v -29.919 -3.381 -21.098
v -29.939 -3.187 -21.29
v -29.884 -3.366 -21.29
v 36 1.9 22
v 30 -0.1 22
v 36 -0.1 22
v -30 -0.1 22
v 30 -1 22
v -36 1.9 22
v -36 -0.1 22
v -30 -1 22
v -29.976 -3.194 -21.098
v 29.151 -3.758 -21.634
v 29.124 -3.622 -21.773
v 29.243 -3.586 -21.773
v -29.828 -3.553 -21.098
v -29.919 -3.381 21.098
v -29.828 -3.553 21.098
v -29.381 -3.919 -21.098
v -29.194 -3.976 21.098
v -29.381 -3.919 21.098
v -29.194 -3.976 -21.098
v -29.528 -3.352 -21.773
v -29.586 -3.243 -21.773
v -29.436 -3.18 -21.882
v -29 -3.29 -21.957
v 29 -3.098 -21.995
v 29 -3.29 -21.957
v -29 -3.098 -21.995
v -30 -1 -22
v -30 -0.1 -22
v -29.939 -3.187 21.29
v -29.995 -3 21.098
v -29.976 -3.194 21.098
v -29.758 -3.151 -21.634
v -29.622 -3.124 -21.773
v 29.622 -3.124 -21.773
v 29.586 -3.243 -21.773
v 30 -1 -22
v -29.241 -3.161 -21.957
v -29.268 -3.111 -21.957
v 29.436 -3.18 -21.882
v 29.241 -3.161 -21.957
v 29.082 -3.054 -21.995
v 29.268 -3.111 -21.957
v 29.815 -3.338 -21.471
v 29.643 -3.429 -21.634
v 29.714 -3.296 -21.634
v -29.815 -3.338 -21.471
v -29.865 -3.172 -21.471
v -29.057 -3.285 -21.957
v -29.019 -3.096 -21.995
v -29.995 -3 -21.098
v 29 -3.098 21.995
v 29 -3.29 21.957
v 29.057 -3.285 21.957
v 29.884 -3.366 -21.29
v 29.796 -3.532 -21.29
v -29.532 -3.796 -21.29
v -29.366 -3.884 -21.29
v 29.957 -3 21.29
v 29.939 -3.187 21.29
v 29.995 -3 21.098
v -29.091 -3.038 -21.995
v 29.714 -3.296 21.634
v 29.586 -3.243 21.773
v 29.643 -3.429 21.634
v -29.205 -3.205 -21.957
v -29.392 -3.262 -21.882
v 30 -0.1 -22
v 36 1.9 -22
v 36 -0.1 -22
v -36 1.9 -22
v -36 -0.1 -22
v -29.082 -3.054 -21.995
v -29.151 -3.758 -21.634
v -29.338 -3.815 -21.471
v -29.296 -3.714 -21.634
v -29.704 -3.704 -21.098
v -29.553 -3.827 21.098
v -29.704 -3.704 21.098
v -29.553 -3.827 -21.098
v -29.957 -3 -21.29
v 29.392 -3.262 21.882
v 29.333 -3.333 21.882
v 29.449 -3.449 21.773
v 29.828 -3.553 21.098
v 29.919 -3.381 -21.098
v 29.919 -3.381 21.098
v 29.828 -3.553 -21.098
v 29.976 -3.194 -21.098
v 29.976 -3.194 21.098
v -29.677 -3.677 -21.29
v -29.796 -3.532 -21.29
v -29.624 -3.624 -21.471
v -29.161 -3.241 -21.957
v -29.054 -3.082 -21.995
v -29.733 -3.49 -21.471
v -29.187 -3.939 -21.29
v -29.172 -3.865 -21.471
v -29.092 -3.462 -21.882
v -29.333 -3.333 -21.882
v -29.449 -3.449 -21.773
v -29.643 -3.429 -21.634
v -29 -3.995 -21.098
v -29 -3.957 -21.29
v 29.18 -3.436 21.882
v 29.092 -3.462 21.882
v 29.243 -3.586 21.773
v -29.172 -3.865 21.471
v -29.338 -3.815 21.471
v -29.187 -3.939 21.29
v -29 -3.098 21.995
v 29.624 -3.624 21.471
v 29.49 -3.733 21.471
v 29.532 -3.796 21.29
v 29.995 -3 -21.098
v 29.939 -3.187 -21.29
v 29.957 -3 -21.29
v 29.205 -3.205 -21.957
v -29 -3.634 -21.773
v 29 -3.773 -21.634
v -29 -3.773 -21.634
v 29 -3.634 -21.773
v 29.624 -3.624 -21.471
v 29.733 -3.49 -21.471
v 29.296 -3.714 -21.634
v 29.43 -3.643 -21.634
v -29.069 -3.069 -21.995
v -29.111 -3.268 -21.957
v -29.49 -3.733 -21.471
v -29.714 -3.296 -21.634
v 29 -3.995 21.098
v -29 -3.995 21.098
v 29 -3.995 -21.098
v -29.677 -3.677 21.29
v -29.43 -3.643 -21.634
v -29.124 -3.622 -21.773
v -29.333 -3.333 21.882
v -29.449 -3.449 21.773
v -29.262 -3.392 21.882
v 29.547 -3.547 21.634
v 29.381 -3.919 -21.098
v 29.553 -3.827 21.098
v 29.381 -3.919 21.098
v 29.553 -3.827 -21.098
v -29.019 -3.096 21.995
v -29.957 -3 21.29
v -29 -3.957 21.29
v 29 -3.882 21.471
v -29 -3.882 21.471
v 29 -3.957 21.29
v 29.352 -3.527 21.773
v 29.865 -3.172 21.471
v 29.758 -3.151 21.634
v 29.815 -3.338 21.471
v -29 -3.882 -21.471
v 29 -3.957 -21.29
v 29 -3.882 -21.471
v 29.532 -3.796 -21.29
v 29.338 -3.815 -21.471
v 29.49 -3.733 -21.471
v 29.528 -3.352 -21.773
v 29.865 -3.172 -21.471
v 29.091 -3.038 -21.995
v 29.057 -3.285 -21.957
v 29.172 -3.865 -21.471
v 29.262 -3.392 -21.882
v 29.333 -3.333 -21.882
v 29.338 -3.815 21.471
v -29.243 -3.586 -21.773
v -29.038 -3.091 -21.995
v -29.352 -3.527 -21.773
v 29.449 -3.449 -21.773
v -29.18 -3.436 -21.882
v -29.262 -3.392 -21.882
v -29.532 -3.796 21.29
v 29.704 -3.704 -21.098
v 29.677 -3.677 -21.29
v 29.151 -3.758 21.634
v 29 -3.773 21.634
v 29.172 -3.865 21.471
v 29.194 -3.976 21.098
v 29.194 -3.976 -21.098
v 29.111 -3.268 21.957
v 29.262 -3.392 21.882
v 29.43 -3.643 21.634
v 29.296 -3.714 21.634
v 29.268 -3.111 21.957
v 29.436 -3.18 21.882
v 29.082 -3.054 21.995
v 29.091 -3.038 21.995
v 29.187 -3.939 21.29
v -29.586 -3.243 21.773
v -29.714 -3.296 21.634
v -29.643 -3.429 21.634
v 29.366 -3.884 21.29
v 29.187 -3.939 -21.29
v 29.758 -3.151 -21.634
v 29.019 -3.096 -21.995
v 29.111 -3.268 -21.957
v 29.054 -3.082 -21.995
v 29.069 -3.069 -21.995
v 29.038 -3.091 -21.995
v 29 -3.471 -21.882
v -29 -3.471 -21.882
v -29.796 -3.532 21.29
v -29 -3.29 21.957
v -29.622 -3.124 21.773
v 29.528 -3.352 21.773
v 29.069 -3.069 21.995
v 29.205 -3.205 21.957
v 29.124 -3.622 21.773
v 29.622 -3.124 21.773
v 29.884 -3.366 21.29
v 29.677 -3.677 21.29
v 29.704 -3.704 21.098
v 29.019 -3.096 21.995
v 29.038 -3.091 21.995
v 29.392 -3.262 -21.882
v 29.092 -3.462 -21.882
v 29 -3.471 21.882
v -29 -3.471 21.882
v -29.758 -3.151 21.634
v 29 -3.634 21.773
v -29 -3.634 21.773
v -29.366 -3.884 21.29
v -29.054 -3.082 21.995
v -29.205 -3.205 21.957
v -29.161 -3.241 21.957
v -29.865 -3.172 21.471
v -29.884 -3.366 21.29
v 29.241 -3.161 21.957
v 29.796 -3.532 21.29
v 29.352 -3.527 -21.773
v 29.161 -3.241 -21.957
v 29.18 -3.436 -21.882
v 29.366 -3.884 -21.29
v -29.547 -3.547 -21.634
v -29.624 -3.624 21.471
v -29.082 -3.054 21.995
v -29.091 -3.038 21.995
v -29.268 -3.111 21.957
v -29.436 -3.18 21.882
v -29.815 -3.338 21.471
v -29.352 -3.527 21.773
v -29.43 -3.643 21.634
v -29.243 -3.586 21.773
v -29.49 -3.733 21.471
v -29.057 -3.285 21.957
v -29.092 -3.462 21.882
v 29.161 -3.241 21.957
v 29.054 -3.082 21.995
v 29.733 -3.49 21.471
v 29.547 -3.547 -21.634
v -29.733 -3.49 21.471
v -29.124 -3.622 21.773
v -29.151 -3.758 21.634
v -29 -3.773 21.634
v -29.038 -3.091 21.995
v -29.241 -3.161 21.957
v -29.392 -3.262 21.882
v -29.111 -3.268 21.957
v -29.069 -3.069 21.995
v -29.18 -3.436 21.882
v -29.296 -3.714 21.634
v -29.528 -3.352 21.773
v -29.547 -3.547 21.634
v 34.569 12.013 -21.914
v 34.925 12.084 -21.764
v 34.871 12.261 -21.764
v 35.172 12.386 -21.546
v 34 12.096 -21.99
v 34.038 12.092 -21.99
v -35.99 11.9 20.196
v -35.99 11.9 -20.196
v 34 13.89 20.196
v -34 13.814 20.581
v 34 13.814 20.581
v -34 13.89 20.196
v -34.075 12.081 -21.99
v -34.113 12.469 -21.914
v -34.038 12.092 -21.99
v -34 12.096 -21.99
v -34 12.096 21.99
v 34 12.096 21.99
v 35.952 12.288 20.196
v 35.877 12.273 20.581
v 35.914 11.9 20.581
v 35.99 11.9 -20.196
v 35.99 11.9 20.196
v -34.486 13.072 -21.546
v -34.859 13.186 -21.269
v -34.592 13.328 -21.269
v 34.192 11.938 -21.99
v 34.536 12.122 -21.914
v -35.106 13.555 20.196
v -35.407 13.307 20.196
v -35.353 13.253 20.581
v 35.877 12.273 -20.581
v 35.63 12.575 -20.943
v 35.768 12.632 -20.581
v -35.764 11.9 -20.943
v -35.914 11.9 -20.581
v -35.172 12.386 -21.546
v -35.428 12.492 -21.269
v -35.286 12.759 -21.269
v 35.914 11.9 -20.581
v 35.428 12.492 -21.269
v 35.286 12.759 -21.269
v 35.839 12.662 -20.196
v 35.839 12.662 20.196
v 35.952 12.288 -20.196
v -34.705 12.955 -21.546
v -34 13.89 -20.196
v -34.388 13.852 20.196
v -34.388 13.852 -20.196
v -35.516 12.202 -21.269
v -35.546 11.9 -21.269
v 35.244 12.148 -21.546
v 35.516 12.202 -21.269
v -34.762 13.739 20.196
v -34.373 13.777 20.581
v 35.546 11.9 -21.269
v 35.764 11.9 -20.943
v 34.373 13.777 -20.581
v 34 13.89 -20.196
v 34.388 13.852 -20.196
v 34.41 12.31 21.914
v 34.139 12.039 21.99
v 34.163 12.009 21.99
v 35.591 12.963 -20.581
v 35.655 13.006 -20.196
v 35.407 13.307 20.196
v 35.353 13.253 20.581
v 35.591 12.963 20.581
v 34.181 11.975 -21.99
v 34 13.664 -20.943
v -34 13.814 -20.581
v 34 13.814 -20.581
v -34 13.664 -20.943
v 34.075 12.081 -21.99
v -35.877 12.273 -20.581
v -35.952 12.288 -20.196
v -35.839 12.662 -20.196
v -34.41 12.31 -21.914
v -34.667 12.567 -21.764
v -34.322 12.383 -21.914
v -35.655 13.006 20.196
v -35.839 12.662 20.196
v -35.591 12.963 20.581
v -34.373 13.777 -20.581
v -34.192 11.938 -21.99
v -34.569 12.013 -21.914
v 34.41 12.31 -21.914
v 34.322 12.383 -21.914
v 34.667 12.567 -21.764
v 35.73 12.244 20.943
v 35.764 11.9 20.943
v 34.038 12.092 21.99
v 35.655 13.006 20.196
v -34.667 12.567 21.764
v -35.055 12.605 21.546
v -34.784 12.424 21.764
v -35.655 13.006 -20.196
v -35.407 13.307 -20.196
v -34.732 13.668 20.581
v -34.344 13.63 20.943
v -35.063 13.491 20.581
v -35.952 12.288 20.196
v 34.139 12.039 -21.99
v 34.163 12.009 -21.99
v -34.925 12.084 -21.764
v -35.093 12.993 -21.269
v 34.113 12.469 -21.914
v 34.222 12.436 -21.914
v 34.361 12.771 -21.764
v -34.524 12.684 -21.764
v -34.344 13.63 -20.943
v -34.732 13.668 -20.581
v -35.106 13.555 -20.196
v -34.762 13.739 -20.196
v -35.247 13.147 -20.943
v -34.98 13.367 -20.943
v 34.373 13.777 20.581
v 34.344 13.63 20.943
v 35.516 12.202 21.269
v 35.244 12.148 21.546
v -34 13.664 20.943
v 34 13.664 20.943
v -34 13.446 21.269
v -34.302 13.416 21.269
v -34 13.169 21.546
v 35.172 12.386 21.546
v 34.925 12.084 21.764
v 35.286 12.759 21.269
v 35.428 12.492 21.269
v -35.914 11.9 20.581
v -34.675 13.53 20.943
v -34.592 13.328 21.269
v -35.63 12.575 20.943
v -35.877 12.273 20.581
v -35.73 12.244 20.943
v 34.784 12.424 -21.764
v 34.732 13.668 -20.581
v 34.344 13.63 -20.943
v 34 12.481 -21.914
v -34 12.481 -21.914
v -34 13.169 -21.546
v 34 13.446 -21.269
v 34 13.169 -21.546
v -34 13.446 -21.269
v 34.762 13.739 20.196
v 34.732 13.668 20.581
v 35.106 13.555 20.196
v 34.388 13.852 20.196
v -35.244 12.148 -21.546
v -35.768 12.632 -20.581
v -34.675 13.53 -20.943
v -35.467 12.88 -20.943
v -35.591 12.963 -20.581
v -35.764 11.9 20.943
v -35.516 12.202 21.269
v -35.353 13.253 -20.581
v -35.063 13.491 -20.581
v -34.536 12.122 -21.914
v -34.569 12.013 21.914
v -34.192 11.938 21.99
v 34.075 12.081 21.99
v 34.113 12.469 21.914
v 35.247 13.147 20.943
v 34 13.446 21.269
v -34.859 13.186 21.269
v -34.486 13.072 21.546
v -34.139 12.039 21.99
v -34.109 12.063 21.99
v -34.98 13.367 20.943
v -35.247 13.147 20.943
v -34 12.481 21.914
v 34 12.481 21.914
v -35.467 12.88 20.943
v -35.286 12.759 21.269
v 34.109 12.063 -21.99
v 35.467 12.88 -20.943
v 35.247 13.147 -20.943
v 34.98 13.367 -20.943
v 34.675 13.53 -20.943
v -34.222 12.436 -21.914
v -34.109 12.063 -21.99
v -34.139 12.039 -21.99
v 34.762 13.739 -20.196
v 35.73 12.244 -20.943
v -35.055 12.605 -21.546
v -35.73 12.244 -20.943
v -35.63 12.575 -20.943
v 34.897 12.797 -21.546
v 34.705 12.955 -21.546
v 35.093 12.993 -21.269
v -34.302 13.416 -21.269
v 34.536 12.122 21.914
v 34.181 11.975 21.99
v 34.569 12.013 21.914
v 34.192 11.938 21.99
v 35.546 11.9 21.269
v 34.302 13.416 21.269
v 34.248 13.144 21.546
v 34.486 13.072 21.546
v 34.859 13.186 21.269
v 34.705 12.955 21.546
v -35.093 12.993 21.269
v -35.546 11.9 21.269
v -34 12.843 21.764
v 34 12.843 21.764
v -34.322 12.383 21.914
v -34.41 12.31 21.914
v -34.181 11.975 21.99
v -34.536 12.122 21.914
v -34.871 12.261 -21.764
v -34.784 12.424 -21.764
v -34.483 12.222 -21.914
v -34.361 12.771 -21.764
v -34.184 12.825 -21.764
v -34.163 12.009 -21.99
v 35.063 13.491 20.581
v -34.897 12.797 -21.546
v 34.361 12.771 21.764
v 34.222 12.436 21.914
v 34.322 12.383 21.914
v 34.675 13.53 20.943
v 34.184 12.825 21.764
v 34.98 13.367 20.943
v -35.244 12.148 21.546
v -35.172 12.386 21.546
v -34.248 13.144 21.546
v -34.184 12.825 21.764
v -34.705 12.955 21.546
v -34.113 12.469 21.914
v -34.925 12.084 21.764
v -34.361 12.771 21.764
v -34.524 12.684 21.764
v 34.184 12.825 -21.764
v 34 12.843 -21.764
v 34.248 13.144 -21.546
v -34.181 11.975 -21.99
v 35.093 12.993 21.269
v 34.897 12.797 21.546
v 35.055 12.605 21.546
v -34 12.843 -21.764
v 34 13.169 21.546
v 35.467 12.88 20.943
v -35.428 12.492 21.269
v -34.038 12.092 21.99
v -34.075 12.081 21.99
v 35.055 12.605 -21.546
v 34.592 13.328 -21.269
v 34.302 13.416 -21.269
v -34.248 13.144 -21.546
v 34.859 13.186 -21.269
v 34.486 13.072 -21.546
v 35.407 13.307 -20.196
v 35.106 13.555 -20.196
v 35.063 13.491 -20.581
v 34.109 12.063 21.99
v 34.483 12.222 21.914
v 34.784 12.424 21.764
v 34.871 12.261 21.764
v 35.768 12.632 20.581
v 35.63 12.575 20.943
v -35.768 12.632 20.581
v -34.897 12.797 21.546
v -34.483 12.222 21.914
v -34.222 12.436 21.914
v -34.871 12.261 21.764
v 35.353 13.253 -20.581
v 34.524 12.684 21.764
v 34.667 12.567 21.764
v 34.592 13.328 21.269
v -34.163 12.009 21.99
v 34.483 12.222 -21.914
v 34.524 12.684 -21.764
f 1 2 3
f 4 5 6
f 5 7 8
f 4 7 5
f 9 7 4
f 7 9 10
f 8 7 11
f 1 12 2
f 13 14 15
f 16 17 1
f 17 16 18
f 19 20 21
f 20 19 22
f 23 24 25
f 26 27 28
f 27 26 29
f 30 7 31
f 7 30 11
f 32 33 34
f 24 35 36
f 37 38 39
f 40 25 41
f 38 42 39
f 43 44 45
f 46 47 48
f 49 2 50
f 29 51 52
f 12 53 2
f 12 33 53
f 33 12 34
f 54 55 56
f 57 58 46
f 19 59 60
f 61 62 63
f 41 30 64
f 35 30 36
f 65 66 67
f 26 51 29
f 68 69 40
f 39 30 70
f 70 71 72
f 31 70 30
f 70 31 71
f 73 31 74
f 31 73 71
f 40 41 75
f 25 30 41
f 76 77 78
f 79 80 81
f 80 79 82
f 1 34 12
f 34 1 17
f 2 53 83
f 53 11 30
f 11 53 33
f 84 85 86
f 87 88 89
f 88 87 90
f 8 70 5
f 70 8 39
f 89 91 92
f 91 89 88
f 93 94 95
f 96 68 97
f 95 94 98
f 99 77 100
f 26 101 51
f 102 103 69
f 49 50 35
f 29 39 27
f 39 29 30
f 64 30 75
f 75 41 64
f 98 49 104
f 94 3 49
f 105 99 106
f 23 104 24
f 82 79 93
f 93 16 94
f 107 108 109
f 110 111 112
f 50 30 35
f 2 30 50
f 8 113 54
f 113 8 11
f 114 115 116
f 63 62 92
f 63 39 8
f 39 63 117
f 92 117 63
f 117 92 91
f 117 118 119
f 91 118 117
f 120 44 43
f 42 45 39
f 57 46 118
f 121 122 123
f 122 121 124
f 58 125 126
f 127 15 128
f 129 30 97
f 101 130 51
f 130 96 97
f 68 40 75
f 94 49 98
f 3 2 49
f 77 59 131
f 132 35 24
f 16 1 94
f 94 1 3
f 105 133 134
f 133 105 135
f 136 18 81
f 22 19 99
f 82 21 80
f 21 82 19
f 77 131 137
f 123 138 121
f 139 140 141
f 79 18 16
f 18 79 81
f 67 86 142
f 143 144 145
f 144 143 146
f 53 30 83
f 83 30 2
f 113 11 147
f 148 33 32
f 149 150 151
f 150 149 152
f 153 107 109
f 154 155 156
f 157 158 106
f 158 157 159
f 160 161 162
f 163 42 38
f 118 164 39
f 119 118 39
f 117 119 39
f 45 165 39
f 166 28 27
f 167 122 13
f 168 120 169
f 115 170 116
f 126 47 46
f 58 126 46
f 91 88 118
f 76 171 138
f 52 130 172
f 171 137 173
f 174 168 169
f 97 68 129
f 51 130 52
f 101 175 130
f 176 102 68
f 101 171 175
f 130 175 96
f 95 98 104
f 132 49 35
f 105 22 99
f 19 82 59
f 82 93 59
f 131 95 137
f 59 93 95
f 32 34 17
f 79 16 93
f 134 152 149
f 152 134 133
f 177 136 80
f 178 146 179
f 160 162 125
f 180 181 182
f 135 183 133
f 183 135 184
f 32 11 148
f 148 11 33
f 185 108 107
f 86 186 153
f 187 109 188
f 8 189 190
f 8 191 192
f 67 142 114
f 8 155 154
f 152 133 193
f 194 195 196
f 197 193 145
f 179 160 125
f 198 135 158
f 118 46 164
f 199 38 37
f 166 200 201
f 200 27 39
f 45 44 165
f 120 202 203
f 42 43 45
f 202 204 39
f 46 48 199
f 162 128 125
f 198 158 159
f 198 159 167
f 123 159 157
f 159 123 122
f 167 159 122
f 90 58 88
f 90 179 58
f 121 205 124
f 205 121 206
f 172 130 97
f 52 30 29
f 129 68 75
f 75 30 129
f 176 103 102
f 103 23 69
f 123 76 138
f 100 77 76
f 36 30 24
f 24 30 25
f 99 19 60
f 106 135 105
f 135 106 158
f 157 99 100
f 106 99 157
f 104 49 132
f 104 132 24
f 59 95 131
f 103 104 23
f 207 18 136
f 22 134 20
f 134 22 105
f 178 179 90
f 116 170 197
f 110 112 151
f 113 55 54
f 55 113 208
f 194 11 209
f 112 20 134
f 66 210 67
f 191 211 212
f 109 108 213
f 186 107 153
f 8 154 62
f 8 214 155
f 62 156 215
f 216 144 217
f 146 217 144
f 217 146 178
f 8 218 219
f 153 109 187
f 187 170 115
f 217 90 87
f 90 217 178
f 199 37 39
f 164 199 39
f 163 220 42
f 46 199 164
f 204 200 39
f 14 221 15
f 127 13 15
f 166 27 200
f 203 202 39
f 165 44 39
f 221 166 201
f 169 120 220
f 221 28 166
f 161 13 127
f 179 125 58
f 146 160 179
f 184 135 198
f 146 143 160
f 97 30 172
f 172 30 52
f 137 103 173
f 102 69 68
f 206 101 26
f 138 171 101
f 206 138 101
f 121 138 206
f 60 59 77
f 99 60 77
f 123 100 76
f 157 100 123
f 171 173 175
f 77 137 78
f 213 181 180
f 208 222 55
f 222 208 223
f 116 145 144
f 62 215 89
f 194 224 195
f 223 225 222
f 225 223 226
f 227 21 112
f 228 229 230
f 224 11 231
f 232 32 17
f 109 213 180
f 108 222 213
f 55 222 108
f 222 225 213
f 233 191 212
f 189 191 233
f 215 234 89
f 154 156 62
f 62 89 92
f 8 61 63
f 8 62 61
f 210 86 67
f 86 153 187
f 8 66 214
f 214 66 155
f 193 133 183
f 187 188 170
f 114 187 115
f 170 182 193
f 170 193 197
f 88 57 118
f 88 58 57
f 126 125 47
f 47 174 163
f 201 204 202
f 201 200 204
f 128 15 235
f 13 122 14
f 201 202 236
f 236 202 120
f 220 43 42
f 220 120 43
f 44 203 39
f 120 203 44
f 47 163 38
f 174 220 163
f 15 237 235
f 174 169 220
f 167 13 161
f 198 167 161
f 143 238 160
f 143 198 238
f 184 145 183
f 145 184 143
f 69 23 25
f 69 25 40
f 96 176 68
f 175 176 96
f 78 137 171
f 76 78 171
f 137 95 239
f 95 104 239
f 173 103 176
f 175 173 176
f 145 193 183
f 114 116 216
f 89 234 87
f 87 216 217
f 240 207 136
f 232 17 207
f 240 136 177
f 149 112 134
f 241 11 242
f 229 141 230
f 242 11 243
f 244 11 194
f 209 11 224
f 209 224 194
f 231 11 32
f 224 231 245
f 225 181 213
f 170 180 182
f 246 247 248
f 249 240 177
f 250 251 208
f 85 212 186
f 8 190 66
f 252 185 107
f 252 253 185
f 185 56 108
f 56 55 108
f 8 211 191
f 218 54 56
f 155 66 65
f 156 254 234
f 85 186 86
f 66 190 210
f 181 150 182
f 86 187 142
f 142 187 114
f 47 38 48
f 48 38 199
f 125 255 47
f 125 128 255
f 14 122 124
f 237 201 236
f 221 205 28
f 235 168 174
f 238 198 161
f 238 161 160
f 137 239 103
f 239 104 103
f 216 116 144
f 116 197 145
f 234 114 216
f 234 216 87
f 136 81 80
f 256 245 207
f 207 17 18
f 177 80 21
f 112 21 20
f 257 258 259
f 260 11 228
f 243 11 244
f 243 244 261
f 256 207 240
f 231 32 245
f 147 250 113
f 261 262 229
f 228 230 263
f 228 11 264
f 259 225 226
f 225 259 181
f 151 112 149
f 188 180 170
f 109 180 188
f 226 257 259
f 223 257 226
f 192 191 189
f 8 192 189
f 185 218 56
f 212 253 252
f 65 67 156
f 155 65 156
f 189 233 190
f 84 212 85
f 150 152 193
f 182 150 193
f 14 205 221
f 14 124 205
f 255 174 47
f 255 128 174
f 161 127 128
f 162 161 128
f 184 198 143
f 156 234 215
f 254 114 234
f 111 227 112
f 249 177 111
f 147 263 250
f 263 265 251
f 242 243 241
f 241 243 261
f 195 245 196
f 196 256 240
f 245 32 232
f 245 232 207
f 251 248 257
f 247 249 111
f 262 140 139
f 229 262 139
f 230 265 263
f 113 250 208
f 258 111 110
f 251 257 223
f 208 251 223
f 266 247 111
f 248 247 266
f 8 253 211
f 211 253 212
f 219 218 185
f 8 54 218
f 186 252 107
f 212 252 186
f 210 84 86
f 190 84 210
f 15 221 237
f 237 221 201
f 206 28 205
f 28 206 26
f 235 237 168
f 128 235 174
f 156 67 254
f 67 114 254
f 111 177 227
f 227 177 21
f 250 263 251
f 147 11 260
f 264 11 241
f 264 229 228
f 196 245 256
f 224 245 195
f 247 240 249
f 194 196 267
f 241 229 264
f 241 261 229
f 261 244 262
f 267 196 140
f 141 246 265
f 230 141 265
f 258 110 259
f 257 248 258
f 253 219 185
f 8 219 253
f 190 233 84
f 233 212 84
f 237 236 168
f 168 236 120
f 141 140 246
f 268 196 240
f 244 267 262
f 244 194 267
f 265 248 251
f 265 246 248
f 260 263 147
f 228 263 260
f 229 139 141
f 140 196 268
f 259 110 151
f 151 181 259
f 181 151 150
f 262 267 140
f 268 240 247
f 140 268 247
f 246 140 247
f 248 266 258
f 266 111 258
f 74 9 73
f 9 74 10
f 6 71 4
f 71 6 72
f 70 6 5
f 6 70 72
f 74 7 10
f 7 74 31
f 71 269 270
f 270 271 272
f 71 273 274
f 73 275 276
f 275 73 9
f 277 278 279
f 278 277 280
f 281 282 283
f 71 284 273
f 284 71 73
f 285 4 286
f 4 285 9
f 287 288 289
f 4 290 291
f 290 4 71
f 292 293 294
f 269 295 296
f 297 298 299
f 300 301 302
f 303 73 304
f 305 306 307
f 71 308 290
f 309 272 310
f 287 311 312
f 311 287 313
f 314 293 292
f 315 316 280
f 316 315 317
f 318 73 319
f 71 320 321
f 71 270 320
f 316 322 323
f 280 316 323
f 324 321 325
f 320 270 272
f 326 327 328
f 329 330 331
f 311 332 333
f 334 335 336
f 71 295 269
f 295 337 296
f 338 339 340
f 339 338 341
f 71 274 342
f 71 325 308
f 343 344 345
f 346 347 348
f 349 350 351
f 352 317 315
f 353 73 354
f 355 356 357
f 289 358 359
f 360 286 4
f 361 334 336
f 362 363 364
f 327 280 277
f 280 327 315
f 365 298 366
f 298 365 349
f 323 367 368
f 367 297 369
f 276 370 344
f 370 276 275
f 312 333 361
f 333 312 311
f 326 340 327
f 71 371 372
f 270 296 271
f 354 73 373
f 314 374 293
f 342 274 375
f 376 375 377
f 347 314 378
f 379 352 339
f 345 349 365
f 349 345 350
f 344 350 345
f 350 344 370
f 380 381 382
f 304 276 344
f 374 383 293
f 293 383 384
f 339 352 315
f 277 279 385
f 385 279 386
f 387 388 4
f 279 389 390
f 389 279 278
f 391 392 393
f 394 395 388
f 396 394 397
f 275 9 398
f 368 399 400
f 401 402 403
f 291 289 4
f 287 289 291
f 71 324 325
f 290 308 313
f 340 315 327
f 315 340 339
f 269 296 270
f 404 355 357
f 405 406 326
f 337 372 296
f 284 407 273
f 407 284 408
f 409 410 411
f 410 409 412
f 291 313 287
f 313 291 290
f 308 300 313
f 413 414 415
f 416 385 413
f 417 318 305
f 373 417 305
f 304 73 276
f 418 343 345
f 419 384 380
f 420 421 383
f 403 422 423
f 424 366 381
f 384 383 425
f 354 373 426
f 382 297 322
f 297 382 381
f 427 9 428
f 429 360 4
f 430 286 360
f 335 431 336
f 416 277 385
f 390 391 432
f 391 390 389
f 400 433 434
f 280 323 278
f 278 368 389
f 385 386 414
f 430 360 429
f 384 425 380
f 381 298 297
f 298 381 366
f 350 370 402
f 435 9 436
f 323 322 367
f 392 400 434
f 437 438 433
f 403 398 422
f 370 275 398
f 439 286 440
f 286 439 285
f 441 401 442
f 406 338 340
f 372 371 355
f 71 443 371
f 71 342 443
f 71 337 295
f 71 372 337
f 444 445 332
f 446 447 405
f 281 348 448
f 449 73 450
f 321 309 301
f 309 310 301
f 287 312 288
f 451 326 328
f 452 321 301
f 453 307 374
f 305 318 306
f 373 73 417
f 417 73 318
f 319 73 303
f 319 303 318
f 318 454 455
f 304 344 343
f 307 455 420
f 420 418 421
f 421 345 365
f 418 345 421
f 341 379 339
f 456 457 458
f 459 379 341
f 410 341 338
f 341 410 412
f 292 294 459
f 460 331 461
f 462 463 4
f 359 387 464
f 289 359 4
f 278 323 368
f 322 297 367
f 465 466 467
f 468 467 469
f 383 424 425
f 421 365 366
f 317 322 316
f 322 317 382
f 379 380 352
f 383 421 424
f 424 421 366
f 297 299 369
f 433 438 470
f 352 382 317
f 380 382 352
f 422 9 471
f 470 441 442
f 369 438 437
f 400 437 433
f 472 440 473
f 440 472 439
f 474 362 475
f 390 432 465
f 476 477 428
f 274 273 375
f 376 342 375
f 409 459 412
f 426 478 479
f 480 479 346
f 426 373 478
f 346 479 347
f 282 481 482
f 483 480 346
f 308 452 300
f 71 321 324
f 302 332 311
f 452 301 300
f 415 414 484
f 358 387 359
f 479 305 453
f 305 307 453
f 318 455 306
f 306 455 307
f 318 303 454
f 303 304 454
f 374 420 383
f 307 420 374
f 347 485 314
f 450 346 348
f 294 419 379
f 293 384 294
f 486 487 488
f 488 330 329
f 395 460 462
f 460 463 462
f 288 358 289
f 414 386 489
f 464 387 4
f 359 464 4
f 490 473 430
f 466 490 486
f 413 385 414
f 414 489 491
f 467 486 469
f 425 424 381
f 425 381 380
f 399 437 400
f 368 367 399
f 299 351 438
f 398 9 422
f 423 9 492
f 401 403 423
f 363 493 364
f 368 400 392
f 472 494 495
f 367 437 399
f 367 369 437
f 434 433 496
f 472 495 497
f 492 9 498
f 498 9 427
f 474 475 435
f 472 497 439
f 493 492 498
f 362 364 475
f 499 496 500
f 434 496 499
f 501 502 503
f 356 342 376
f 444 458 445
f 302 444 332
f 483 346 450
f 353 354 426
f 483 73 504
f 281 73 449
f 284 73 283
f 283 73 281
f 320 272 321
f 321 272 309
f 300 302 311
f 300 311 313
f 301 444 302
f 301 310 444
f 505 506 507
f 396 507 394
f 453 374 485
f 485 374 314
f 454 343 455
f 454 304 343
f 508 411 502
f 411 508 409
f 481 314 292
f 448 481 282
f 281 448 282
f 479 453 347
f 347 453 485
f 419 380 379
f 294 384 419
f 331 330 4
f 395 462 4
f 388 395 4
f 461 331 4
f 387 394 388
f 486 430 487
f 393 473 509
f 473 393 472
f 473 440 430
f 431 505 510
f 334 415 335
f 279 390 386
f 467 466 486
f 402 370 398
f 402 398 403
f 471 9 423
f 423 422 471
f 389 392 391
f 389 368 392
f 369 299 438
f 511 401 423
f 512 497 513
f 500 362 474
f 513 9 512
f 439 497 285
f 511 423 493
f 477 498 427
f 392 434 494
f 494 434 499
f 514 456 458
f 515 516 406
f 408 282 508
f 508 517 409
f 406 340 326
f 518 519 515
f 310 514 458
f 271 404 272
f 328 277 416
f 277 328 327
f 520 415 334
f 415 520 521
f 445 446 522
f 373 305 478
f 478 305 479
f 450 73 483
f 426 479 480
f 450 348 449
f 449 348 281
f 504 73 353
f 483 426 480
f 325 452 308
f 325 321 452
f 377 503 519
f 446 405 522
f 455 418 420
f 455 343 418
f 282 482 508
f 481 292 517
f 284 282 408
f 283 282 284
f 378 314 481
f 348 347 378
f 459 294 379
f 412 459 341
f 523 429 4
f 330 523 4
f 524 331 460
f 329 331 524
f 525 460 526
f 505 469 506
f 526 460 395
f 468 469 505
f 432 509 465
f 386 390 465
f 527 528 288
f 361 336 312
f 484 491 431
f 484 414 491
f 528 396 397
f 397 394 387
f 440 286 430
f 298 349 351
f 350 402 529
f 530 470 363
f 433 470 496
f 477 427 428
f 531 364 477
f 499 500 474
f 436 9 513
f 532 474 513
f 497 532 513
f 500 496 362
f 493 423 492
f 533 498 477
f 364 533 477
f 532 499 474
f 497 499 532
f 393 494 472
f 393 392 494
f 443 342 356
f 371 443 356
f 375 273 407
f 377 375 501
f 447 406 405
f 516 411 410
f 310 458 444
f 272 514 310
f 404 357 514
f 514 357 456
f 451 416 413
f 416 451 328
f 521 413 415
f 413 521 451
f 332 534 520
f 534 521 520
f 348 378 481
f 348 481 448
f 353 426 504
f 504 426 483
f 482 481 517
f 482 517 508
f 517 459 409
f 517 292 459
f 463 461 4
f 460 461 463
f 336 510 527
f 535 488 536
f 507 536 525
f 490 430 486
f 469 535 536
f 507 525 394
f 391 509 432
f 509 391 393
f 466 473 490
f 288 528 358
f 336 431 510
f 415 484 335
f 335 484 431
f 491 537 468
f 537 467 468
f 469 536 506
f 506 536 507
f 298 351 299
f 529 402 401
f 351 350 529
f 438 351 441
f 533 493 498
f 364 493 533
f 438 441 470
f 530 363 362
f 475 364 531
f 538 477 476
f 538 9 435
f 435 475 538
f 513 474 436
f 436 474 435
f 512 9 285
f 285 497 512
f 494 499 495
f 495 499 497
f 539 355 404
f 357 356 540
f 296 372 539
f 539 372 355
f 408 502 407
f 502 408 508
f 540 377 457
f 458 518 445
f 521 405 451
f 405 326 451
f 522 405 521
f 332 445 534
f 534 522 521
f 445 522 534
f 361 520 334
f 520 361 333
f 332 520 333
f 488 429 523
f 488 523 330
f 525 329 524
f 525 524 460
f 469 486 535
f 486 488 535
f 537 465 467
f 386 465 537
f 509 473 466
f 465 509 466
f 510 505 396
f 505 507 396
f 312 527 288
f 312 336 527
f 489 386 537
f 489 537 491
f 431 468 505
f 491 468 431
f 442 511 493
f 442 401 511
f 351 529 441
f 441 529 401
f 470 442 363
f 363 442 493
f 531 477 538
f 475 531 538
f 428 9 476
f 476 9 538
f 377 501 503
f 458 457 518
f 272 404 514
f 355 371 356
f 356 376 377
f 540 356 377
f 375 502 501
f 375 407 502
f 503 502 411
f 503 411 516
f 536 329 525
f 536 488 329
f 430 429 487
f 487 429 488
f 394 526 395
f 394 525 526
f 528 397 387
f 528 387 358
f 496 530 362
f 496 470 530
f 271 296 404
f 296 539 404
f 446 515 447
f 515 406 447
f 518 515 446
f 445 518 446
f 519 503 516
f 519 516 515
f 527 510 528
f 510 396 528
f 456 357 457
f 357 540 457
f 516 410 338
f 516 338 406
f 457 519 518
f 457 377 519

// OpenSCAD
union() // SharpSCAD generated scene: module
{
  { // module: tftmodule
    union()
    {
      translate( v= [ 0, -2, 0 ] )
      {
        { // module: roundedcube
          translate( v= [ -30, -2, -22 ] )
          {
            translate( v= [ 0, 0, 0 ] )
            {
              hull()
              {
                translate( v= [ 1, 1, 1 ] )
                {
                  sphere( r= 1, $fn= 32 );
                }
                translate( v= [ 1, 3, 1 ] )
                {
                  sphere( r= 1, $fn= 32 );
                }
                translate( v= [ 1, 1, 43 ] )
                {
                  sphere( r= 1, $fn= 32 );
                }
                translate( v= [ 1, 3, 43 ] )
                {
                  sphere( r= 1, $fn= 32 );
                }
                translate( v= [ 59, 1, 1 ] )
                {
                  sphere( r= 1, $fn= 32 );
                }
                translate( v= [ 59, 3, 1 ] )
                {
                  sphere( r= 1, $fn= 32 );
                }
                translate( v= [ 59, 1, 43 ] )
                {
                  sphere( r= 1, $fn= 32 );
                }
                translate( v= [ 59, 3, 43 ] )
                {
                  sphere( r= 1, $fn= 32 );
                }
                union()
                {
                  translate( v= [ 0, 3, 0 ] )
                  {
                    cube( size= [ 60, 1, 44 ] );
                  }
                }
              }
            }
          }
        }
      }
      translate( v= [ 0, 0.65, 0 ] )
      {
        cube( size= [ 72, 1.5, 44 ], center= true );
      }
      translate( v= [ 0, 6.9, 0 ] )
      {
        { // module: roundedcube
          translate( v= [ -36, -7, -22 ] )
          {
            translate( v= [ 0, 0, 0 ] )
            {
              hull()
              {
                translate( v= [ 2, 2, 2 ] )
                {
                  sphere( r= 2, $fn= 32 );
                }
                translate( v= [ 2, 12, 2 ] )
                {
                  sphere( r= 2, $fn= 32 );
                }
                translate( v= [ 2, 2, 42 ] )
                {
                  sphere( r= 2, $fn= 32 );
                }
                translate( v= [ 2, 12, 42 ] )
                {
                  sphere( r= 2, $fn= 32 );
                }
                translate( v= [ 70, 2, 2 ] )
                {
                  sphere( r= 2, $fn= 32 );
                }
                translate( v= [ 70, 12, 2 ] )
                {
                  sphere( r= 2, $fn= 32 );
                }
                translate( v= [ 70, 2, 42 ] )
                {
                  sphere( r= 2, $fn= 32 );
                }
                translate( v= [ 70, 12, 42 ] )
                {
                  sphere( r= 2, $fn= 32 );
                }
                union()
                {
                  cube( size= [ 72, 2, 44 ] );
                }
              }
            }
          }
        }
      }
    }
  }
}
